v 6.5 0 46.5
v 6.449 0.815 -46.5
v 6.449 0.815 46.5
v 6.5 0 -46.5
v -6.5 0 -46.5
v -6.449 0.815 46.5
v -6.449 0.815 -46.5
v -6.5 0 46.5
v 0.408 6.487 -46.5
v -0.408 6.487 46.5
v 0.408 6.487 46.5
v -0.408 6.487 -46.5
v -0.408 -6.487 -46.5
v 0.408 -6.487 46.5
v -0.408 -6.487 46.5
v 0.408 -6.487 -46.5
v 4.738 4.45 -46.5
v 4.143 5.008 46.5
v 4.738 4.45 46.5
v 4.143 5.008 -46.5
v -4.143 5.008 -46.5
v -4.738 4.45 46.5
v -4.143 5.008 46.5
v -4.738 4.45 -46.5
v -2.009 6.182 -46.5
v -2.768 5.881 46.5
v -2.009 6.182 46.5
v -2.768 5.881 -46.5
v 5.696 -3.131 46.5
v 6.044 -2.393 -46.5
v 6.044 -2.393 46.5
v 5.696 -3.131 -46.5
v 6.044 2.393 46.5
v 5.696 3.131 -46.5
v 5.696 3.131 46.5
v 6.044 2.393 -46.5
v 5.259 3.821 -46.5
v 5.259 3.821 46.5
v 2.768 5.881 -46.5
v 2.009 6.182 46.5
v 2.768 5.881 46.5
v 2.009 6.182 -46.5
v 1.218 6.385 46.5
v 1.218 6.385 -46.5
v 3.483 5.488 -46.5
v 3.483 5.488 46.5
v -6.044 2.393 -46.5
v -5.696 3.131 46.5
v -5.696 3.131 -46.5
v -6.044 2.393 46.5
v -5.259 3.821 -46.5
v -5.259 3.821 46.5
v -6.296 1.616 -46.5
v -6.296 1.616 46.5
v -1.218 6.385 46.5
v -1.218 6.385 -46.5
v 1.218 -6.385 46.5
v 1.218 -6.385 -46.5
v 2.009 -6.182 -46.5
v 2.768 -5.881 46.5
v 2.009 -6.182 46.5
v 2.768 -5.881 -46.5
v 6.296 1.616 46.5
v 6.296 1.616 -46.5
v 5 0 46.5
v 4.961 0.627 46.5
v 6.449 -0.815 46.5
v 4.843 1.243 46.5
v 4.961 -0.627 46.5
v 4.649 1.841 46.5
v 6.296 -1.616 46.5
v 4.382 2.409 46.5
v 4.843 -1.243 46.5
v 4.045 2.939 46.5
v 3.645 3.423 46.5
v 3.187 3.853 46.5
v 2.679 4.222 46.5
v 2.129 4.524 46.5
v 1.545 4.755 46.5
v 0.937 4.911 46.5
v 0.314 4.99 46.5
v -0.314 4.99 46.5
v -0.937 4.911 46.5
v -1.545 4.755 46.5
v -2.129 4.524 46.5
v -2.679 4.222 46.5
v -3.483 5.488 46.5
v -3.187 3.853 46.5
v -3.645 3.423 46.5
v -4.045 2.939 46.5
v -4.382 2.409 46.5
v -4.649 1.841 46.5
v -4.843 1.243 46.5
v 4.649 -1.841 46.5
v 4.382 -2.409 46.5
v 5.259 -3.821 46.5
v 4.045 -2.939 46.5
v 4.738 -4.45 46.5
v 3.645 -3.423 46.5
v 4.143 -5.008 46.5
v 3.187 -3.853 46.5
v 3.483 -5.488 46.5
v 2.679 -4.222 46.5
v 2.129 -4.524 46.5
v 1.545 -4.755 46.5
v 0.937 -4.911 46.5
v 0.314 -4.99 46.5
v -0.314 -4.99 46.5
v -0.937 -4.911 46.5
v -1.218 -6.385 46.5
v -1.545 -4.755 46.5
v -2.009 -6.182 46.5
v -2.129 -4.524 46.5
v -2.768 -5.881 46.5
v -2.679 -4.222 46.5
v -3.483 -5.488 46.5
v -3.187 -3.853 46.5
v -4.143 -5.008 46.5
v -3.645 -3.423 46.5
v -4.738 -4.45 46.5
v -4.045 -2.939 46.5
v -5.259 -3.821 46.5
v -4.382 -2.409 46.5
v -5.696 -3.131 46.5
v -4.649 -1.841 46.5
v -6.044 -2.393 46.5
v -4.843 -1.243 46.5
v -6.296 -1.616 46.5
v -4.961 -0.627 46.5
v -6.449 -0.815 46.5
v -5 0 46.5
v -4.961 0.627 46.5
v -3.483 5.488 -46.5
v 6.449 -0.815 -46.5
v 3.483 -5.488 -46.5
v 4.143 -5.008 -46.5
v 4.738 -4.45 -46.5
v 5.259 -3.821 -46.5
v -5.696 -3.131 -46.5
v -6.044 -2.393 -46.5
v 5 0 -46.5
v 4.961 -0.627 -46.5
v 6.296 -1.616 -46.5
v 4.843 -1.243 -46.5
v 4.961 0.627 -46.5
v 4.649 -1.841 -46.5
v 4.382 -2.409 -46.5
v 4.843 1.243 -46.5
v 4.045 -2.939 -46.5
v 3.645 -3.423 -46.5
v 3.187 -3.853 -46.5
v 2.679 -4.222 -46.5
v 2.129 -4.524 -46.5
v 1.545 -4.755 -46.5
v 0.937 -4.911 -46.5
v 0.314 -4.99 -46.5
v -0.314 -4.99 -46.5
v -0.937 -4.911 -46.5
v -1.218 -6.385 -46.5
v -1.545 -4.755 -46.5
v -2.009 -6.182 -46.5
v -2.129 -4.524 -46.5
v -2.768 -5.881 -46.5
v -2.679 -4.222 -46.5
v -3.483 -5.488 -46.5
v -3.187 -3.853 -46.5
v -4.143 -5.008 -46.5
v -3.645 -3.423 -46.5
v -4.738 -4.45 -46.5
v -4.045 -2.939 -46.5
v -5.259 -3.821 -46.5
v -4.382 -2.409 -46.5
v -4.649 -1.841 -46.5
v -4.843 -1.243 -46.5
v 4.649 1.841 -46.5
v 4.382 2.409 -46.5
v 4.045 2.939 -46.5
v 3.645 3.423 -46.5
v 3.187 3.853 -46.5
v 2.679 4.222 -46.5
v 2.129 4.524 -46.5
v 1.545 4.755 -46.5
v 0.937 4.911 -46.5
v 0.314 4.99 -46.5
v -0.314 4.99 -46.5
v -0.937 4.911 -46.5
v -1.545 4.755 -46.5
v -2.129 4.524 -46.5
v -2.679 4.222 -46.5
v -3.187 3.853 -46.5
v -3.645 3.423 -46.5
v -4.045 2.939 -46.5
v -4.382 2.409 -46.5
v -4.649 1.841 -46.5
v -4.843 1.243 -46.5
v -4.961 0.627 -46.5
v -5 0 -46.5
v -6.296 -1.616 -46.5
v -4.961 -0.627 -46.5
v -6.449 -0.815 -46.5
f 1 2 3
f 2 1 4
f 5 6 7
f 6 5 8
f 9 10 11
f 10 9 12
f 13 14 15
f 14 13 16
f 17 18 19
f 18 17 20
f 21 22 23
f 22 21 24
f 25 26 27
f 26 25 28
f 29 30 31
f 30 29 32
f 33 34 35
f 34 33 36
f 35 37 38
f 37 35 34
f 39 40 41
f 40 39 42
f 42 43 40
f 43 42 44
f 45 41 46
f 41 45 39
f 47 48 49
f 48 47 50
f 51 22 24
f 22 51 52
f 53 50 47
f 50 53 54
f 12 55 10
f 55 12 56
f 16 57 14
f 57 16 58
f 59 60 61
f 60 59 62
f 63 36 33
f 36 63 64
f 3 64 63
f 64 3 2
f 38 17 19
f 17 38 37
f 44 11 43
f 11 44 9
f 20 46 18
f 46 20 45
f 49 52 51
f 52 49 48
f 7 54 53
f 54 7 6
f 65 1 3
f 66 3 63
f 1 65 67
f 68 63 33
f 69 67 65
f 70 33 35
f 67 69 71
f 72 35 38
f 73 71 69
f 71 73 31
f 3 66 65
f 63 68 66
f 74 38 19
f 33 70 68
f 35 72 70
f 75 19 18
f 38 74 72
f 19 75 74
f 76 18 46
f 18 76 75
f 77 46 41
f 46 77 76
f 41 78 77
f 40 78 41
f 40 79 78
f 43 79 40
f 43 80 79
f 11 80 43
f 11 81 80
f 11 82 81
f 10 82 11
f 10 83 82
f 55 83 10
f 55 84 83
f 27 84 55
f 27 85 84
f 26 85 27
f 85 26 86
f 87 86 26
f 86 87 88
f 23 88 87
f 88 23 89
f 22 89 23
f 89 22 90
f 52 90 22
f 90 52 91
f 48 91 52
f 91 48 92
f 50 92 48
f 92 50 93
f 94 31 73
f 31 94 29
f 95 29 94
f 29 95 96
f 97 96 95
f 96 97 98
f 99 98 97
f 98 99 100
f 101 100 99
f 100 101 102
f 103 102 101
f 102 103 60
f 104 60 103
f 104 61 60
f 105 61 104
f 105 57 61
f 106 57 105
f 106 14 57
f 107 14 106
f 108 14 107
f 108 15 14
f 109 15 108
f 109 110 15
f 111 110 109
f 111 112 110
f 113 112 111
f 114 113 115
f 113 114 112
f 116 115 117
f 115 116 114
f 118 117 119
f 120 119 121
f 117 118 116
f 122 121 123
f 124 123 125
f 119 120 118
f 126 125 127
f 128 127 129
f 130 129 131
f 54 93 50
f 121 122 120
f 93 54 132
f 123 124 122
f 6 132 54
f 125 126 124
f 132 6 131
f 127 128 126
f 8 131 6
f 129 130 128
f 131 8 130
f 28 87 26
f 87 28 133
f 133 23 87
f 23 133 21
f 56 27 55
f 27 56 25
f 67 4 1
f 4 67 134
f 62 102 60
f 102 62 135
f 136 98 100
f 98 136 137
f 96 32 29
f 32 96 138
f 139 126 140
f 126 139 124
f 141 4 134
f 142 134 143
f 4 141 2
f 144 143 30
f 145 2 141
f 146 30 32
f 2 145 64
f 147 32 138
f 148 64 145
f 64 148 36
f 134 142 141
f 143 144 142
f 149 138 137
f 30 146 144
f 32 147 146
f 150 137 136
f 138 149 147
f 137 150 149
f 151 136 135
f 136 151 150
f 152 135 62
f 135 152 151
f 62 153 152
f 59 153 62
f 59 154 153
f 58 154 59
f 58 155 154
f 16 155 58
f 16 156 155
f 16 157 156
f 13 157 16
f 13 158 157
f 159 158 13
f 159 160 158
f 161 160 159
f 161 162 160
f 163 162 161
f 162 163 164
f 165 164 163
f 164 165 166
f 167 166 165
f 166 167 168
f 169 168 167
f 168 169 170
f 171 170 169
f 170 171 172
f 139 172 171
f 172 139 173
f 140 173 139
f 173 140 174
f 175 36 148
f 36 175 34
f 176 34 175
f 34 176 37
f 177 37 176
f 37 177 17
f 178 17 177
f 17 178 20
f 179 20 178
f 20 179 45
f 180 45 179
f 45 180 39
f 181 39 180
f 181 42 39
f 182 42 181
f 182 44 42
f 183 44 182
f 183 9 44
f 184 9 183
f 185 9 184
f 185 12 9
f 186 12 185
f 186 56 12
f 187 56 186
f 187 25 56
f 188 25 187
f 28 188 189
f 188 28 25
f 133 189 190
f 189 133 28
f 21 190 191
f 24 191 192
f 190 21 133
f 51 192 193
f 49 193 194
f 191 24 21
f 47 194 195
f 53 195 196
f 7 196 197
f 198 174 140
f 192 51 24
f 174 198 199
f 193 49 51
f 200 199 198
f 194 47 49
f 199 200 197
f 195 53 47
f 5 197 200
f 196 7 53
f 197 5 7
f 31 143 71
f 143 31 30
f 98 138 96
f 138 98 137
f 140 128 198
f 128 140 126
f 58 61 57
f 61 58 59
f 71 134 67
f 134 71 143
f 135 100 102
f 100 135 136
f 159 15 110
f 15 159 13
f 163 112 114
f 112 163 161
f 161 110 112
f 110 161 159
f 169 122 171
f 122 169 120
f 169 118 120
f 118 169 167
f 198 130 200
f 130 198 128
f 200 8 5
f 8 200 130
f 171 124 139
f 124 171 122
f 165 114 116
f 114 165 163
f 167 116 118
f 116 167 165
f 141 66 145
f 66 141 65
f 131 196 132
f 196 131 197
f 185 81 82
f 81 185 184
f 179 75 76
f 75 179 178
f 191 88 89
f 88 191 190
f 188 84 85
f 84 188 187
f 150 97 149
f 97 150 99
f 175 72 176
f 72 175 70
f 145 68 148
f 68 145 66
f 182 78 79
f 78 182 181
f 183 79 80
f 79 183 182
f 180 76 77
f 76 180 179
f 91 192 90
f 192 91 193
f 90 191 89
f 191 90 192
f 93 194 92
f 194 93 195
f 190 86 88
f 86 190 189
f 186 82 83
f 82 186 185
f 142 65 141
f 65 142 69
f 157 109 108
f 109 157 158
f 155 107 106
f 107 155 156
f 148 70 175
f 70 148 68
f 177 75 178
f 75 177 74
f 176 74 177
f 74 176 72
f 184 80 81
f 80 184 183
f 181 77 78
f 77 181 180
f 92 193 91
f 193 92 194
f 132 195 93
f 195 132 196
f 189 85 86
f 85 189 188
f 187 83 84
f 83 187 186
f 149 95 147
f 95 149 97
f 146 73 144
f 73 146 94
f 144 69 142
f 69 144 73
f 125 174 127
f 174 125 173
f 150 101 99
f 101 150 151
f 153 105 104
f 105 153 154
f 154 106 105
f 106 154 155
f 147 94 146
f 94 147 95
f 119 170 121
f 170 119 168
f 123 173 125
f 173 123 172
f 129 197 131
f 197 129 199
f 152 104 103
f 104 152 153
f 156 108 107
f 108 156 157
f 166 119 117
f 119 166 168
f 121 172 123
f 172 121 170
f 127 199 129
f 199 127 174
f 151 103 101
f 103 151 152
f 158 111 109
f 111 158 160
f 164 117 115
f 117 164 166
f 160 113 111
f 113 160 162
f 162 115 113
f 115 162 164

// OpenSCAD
$fn = 50;


difference() {
	union() {
		translate(v = [0, 0, -46.5000000000]) {
			cylinder(h = 93, r = 6.5000000000);
		}
	}
	union() {
		translate(v = [0, 0, -100.0000000000]) {
			cylinder(h = 200, r = 5);
		}
	}
}
